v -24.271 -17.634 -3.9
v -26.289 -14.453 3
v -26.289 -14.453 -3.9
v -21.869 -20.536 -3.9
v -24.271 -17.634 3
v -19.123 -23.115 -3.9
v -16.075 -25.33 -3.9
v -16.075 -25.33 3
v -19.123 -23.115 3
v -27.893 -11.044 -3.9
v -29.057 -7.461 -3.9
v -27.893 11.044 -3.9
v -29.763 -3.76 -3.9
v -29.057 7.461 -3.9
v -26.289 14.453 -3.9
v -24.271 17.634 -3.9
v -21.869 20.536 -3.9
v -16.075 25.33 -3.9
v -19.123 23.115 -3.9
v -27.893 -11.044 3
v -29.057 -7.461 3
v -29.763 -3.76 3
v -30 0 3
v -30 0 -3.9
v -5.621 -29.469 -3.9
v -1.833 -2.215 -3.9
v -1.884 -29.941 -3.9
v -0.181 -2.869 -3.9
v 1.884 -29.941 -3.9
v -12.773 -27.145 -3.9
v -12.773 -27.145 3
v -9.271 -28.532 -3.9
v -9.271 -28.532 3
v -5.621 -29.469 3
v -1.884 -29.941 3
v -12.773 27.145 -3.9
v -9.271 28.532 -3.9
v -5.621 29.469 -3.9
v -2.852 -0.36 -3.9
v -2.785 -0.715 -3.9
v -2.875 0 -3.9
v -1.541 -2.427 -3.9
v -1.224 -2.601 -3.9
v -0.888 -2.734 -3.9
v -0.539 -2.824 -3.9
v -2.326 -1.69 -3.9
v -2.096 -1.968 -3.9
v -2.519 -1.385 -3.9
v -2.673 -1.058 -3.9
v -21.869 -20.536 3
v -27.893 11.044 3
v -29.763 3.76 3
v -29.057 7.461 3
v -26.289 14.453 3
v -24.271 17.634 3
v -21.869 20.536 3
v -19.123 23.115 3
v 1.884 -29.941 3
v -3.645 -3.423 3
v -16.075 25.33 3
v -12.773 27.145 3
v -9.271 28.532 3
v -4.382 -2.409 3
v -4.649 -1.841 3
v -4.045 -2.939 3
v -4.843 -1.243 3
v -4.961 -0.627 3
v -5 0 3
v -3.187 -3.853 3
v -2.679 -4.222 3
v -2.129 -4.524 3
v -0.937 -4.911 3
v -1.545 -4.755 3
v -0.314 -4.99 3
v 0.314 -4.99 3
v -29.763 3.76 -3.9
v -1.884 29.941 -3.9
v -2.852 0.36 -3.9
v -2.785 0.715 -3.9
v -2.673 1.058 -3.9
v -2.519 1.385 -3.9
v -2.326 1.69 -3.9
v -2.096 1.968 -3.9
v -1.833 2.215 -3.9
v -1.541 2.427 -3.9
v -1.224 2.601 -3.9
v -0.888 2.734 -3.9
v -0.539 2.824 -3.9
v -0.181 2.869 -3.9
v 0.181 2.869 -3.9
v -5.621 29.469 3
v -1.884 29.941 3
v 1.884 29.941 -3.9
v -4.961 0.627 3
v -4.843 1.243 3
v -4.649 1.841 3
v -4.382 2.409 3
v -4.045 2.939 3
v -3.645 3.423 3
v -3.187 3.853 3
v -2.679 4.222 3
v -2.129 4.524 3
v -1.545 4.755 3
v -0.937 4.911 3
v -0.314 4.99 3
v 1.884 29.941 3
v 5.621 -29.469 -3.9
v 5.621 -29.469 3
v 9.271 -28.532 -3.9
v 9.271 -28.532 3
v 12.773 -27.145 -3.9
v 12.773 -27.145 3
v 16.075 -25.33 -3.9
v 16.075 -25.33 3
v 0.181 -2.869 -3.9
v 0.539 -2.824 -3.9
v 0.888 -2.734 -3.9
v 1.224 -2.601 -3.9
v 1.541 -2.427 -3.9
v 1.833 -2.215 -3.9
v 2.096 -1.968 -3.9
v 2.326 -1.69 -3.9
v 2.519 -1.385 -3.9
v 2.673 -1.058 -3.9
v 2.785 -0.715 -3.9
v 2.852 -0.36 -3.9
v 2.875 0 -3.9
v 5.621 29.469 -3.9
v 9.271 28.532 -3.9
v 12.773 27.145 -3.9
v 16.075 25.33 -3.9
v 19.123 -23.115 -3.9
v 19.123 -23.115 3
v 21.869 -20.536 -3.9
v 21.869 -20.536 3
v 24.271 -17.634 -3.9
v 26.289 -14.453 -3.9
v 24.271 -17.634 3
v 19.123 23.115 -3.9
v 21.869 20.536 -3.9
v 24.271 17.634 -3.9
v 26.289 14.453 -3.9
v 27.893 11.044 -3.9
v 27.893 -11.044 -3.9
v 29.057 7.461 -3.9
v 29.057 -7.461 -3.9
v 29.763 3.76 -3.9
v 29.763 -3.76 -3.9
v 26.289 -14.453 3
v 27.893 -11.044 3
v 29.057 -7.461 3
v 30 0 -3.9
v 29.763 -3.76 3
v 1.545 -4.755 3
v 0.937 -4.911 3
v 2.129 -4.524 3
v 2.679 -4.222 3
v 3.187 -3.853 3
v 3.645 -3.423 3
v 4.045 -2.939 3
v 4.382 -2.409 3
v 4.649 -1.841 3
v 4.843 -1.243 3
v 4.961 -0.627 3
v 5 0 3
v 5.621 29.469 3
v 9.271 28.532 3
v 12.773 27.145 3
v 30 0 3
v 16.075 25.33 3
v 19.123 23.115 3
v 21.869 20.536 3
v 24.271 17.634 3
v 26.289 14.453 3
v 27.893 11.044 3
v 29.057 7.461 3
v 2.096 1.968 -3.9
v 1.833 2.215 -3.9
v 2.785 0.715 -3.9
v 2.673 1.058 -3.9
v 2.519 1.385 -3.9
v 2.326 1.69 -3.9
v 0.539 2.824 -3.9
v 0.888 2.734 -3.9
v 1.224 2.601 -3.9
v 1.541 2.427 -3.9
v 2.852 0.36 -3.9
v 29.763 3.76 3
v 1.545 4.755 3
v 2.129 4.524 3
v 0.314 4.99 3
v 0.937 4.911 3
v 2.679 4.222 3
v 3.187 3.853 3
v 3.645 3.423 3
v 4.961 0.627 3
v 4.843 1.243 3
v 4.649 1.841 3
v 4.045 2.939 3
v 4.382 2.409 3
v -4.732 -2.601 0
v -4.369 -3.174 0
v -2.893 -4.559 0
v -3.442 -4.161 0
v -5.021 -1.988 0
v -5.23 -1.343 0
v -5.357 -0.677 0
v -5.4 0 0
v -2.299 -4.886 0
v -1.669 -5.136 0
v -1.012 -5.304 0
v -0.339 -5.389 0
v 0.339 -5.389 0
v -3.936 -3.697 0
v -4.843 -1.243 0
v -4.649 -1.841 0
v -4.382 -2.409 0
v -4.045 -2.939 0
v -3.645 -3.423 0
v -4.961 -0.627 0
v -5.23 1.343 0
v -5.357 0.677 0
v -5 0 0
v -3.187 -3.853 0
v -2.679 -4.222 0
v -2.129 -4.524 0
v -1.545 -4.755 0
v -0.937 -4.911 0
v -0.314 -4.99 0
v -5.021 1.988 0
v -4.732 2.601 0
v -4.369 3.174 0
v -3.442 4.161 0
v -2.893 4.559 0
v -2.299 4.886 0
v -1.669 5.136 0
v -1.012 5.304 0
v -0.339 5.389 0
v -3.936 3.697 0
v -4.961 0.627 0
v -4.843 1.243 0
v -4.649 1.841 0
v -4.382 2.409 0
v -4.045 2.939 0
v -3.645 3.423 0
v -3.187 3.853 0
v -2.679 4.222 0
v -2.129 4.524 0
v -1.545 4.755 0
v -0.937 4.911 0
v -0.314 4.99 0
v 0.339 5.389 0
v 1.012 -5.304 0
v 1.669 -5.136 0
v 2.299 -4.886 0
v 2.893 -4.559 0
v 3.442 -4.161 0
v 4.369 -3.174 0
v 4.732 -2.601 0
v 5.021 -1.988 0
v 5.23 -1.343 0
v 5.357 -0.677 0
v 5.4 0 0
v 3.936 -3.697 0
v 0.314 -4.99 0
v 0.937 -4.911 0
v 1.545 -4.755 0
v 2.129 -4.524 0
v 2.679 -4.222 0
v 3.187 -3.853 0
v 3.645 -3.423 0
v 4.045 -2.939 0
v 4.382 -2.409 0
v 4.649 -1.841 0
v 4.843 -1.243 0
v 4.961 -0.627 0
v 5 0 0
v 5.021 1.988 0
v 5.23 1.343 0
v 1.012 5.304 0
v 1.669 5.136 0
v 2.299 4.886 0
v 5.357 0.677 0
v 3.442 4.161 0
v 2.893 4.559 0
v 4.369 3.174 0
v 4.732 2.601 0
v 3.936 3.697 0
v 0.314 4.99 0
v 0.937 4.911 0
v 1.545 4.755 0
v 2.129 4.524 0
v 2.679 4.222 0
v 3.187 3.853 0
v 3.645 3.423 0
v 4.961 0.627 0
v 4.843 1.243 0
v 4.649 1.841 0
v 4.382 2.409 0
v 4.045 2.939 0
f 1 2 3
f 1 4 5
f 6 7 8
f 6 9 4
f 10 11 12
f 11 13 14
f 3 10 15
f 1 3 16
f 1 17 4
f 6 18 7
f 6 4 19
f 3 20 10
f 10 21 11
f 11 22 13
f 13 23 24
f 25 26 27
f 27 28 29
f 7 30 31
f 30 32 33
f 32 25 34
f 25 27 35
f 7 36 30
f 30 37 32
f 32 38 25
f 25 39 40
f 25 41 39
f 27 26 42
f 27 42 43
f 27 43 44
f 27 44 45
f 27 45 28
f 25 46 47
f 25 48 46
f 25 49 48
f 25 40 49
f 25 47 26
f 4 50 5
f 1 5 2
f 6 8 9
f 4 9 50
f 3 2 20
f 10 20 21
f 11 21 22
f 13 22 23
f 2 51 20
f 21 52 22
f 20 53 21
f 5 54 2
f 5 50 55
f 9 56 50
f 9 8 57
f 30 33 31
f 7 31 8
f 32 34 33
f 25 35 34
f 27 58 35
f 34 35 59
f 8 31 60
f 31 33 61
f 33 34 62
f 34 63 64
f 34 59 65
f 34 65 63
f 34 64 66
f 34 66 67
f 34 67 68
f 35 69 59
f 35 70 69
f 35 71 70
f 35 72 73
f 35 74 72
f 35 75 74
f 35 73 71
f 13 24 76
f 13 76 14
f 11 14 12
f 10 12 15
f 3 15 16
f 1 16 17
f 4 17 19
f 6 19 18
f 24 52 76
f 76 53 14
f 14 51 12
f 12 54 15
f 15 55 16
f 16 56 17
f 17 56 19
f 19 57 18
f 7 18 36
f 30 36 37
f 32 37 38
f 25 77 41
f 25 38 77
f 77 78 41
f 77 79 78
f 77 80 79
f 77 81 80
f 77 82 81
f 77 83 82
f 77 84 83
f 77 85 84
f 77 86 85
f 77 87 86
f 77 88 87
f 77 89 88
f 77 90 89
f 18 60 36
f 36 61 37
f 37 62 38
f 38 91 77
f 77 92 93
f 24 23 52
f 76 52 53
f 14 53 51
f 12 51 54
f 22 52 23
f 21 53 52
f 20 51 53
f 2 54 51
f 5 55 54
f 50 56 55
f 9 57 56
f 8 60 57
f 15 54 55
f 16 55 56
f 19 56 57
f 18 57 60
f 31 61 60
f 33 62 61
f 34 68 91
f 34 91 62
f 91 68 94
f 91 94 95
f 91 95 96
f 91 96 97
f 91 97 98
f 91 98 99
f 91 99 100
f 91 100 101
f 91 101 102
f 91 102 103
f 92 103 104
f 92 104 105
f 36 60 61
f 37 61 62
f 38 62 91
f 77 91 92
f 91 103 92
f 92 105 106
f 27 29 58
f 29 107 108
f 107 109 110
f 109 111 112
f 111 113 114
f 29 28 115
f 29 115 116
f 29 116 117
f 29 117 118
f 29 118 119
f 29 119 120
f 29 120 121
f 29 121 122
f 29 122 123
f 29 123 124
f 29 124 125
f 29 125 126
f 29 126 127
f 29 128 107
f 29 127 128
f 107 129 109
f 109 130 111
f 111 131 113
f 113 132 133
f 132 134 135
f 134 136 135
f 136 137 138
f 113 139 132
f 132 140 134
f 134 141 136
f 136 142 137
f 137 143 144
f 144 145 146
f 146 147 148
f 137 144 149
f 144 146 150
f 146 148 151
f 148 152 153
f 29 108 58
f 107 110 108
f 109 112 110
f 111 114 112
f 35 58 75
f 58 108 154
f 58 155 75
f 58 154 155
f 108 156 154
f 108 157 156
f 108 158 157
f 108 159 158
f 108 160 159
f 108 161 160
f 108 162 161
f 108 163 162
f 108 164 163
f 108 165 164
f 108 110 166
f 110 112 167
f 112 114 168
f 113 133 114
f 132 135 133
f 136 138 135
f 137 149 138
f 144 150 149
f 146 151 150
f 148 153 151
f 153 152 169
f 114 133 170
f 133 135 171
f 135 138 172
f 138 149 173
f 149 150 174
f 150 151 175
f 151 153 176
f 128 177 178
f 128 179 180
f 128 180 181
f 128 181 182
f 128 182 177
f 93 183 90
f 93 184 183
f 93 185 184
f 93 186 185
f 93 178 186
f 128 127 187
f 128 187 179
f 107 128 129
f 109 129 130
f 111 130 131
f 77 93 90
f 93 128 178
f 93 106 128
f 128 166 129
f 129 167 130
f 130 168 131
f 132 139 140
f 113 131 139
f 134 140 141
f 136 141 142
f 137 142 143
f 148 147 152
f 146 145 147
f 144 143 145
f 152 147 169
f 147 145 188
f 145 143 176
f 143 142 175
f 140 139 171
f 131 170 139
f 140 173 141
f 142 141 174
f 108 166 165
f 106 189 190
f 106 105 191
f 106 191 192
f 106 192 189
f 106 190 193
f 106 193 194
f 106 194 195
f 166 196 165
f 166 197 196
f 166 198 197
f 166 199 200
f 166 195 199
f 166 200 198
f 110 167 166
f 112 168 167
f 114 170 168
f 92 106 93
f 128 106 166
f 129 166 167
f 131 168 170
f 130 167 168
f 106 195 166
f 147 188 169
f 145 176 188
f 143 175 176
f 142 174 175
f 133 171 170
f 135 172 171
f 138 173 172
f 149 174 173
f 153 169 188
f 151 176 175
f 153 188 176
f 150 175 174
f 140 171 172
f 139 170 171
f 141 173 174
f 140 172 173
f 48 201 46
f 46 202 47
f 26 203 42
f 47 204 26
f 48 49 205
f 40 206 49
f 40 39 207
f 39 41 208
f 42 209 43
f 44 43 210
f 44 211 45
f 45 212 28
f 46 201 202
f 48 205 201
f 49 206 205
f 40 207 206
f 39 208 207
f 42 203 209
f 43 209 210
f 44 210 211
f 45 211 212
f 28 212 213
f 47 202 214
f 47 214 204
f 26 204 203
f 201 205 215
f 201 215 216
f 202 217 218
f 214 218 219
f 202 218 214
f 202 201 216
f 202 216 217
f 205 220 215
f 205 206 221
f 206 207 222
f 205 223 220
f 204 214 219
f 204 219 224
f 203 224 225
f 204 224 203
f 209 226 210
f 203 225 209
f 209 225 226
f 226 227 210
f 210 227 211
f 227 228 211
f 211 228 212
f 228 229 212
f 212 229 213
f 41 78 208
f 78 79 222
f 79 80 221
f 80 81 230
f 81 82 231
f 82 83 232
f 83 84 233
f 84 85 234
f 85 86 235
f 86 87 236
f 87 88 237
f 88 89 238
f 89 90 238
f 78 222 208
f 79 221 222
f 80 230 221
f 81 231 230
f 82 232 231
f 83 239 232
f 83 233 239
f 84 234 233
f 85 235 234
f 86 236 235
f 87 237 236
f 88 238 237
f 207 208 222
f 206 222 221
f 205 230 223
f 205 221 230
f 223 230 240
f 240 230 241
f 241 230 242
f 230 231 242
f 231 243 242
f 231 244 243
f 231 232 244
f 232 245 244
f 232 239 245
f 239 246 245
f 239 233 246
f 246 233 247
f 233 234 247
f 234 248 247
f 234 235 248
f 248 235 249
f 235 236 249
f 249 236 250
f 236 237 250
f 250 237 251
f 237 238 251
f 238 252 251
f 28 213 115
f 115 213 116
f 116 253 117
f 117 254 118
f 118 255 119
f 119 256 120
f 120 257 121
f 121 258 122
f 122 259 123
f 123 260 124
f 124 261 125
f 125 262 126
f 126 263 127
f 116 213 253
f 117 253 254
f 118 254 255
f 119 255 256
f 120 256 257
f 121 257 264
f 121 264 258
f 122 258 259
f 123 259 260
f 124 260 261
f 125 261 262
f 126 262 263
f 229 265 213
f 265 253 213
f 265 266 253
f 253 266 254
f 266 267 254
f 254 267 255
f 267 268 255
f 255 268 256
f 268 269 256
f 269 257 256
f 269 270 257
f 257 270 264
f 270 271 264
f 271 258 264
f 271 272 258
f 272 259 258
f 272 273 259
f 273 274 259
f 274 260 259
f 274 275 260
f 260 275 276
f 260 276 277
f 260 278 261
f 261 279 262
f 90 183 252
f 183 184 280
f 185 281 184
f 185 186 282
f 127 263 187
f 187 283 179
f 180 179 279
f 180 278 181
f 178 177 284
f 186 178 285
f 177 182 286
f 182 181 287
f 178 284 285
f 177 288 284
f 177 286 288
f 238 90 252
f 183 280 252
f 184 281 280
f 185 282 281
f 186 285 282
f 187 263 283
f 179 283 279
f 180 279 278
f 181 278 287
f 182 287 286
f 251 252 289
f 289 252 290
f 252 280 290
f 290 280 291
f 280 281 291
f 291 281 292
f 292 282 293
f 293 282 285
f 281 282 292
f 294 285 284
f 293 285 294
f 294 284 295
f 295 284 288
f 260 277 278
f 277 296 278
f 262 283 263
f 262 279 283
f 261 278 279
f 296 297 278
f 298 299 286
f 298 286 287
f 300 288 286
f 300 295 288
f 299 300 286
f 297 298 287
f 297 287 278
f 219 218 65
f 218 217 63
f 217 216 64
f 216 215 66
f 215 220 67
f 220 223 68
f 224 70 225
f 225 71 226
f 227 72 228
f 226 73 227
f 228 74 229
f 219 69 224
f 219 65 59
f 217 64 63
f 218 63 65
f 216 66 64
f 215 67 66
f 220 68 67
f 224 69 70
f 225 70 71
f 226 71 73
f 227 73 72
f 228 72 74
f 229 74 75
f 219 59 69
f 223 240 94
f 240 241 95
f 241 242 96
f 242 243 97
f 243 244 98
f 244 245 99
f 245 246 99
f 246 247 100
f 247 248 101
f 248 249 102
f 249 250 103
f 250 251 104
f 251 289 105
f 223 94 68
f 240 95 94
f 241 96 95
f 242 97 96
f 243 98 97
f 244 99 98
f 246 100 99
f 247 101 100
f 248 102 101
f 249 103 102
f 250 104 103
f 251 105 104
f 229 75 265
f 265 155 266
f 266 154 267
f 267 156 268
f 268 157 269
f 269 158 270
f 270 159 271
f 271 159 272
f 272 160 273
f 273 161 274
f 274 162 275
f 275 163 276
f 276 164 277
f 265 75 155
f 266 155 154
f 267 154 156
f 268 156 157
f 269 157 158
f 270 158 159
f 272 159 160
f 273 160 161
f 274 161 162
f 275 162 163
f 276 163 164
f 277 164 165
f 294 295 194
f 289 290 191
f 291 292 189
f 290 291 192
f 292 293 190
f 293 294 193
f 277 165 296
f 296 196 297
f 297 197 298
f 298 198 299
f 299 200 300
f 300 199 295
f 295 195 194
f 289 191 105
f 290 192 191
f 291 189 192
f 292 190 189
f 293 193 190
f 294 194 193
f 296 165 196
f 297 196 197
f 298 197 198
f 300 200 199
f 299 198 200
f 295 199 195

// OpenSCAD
$fn = 50;

difference() {
	union() {
		translate(v = [0, 0, -3.9000000000000004]) {
			cylinder(h = 6.9, r = 30.0);
		}
		#translate(v = [0, 0, -6.9]) {
			cylinder(h = 6.9, r = 2.875);
		}
	}
	union() {
		translate(v = [0, 0, 0]) {
			rotate(a = [0, 0, 0]) {
				difference() {
					union() {
						translate(v = [0, 0, -6.9]) {
							cylinder(h = 6.9, r = 2.6);
						}
						translate(v = [0, 0, -3.9]) {
							cylinder(h = 3.9, r1 = 2.875, r2 = 5.4);
						}
						translate(v = [0, 0, -6.9]) {
							cylinder(h = 6.9, r = 2.875);
						}
						translate(v = [0, 0, -6.9]) {
							cylinder(h = 6.9, r = 2.6);
						}
					}
					union();
				}
			}
		}
		#cylinder(h = 3, r = 5.0);
	}
}
